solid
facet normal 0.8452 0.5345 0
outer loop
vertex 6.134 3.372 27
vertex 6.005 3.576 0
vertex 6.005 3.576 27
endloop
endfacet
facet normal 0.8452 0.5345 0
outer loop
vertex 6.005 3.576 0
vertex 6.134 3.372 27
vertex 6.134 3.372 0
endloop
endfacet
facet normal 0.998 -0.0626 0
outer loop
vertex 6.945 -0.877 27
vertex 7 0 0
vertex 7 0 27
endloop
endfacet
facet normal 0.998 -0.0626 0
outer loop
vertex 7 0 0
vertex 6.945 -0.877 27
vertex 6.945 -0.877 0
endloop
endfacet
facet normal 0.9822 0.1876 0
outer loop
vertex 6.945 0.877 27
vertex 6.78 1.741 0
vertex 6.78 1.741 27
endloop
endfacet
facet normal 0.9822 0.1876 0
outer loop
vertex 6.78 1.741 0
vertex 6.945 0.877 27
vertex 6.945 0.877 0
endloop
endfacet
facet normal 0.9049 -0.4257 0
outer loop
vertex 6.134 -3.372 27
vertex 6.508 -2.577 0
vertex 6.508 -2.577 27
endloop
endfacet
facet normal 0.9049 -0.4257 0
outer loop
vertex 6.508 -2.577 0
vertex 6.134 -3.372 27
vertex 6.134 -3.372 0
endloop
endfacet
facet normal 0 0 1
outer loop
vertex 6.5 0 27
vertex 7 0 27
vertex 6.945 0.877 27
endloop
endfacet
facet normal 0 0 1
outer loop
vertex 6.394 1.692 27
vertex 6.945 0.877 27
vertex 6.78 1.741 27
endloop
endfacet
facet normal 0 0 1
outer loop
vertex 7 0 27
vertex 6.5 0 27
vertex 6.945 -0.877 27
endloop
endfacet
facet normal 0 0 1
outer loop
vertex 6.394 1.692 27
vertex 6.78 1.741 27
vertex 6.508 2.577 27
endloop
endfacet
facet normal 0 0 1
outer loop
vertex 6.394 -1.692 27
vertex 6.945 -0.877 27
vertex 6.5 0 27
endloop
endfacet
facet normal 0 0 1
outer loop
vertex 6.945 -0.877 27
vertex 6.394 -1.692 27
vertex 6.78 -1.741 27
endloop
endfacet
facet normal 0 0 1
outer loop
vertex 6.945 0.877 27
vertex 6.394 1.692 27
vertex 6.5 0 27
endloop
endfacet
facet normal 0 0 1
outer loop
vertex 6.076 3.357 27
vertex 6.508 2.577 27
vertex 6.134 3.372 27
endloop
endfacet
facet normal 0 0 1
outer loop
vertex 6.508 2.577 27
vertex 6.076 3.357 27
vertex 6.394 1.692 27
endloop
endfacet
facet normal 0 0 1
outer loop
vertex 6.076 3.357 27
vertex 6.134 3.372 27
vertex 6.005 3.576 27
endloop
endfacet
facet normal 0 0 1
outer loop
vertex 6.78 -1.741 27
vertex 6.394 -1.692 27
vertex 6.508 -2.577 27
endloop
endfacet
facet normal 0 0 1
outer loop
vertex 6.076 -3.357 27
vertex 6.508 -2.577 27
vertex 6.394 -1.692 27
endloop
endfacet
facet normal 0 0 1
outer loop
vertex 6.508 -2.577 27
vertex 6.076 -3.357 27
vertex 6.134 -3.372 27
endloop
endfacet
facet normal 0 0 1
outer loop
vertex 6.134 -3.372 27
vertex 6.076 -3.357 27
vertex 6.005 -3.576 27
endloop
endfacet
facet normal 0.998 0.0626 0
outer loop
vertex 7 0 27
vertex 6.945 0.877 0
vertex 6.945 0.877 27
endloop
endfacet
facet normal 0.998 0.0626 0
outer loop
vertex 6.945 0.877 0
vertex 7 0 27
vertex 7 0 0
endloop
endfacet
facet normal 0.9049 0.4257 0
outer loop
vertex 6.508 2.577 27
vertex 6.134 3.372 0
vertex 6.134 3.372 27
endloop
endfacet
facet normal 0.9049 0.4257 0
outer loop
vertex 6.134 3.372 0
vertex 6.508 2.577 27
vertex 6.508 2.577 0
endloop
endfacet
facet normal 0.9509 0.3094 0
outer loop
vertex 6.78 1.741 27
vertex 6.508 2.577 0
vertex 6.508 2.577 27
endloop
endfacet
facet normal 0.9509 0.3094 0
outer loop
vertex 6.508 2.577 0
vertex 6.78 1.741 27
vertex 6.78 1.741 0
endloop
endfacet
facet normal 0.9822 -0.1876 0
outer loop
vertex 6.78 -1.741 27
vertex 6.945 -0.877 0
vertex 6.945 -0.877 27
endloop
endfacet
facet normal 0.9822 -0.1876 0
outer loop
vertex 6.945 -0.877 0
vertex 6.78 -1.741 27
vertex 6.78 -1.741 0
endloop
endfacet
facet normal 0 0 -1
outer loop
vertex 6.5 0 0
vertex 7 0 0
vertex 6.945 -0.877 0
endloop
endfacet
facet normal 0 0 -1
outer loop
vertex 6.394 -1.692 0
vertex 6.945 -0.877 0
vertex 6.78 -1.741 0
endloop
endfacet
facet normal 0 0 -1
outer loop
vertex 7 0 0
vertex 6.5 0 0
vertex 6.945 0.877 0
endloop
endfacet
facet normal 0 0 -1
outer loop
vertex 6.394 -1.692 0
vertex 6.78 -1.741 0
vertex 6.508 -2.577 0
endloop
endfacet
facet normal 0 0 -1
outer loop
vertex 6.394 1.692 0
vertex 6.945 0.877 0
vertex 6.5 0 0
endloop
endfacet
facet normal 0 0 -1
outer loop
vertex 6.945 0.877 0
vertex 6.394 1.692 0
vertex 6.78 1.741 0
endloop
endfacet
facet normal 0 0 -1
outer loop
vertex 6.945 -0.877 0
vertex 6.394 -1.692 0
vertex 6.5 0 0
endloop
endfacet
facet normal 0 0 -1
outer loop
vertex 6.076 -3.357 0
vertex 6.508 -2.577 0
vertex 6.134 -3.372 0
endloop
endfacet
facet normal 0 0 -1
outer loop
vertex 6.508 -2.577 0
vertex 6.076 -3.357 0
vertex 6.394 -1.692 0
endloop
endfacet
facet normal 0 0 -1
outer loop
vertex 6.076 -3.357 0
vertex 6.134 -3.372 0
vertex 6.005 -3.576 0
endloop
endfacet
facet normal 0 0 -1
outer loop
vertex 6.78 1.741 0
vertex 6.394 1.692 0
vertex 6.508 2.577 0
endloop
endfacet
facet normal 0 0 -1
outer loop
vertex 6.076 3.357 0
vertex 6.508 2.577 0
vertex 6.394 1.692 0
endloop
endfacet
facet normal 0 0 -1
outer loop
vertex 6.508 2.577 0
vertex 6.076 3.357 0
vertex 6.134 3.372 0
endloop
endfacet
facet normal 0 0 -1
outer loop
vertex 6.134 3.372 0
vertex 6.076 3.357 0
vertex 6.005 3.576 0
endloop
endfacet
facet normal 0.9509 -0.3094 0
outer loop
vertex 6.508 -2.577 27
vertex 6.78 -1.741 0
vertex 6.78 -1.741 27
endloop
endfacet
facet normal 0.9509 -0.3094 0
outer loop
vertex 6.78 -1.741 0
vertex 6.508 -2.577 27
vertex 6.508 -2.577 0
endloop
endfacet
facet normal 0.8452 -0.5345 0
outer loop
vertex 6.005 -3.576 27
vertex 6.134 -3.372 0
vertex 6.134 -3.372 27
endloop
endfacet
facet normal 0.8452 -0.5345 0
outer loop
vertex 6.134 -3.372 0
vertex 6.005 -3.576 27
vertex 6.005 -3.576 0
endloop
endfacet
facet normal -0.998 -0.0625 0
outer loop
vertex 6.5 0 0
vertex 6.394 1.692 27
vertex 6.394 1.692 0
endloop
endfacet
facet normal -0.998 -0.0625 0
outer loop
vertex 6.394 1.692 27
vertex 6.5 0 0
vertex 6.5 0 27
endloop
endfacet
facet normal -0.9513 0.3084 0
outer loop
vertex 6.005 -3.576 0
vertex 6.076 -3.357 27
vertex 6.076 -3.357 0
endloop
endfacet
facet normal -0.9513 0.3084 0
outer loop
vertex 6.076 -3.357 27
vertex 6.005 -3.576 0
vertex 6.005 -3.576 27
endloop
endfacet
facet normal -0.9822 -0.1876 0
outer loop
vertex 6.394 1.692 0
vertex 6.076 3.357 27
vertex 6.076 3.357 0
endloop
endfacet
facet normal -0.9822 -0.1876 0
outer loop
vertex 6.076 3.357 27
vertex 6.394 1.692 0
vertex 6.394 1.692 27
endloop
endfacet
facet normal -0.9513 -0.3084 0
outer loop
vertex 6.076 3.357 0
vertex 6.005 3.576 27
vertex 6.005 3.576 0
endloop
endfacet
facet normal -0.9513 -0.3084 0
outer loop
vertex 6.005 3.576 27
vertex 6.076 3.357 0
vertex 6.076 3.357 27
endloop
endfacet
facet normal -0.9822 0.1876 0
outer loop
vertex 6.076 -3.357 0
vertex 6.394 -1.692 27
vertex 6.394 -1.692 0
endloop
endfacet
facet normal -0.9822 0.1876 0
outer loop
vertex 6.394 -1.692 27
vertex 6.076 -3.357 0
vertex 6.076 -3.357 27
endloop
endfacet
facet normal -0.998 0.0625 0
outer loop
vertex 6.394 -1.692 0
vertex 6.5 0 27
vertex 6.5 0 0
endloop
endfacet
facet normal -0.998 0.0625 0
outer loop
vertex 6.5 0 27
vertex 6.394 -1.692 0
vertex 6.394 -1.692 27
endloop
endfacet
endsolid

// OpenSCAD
$fn = 50;


difference() {
	union() {
		cylinder(h = 27, r = 7.0000000000);
		translate(v = [-10.0000000000, 0, 0]) {
			cylinder(h = 27, r = 7.0000000000);
		}
	}
	union() {
		cylinder(h = 27, r = 3.2500000000);
		cylinder(h = 27, r = 1.8000000000);
		cylinder(h = 27, r = 1.8000000000);
		cylinder(h = 27, r = 1.8000000000);
		translate(v = [-14.5000000000, 0, 0]) {
			hull() {
				translate(v = [-3.7500000000, 0.0000000000, 0]) {
					cylinder(h = 27, r = 7.5000000000);
				}
				translate(v = [3.7500000000, 0.0000000000, 0]) {
					cylinder(h = 27, r = 7.5000000000);
				}
				translate(v = [-3.7500000000, -0.0000000000, 0]) {
					cylinder(h = 27, r = 7.5000000000);
				}
				translate(v = [3.7500000000, -0.0000000000, 0]) {
					cylinder(h = 27, r = 7.5000000000);
				}
			}
		}
		translate(v = [-7.0000000000, 0, 0.0000000000]) {
			cylinder(h = 27, r = 13.5000000000);
		}
	}
}
